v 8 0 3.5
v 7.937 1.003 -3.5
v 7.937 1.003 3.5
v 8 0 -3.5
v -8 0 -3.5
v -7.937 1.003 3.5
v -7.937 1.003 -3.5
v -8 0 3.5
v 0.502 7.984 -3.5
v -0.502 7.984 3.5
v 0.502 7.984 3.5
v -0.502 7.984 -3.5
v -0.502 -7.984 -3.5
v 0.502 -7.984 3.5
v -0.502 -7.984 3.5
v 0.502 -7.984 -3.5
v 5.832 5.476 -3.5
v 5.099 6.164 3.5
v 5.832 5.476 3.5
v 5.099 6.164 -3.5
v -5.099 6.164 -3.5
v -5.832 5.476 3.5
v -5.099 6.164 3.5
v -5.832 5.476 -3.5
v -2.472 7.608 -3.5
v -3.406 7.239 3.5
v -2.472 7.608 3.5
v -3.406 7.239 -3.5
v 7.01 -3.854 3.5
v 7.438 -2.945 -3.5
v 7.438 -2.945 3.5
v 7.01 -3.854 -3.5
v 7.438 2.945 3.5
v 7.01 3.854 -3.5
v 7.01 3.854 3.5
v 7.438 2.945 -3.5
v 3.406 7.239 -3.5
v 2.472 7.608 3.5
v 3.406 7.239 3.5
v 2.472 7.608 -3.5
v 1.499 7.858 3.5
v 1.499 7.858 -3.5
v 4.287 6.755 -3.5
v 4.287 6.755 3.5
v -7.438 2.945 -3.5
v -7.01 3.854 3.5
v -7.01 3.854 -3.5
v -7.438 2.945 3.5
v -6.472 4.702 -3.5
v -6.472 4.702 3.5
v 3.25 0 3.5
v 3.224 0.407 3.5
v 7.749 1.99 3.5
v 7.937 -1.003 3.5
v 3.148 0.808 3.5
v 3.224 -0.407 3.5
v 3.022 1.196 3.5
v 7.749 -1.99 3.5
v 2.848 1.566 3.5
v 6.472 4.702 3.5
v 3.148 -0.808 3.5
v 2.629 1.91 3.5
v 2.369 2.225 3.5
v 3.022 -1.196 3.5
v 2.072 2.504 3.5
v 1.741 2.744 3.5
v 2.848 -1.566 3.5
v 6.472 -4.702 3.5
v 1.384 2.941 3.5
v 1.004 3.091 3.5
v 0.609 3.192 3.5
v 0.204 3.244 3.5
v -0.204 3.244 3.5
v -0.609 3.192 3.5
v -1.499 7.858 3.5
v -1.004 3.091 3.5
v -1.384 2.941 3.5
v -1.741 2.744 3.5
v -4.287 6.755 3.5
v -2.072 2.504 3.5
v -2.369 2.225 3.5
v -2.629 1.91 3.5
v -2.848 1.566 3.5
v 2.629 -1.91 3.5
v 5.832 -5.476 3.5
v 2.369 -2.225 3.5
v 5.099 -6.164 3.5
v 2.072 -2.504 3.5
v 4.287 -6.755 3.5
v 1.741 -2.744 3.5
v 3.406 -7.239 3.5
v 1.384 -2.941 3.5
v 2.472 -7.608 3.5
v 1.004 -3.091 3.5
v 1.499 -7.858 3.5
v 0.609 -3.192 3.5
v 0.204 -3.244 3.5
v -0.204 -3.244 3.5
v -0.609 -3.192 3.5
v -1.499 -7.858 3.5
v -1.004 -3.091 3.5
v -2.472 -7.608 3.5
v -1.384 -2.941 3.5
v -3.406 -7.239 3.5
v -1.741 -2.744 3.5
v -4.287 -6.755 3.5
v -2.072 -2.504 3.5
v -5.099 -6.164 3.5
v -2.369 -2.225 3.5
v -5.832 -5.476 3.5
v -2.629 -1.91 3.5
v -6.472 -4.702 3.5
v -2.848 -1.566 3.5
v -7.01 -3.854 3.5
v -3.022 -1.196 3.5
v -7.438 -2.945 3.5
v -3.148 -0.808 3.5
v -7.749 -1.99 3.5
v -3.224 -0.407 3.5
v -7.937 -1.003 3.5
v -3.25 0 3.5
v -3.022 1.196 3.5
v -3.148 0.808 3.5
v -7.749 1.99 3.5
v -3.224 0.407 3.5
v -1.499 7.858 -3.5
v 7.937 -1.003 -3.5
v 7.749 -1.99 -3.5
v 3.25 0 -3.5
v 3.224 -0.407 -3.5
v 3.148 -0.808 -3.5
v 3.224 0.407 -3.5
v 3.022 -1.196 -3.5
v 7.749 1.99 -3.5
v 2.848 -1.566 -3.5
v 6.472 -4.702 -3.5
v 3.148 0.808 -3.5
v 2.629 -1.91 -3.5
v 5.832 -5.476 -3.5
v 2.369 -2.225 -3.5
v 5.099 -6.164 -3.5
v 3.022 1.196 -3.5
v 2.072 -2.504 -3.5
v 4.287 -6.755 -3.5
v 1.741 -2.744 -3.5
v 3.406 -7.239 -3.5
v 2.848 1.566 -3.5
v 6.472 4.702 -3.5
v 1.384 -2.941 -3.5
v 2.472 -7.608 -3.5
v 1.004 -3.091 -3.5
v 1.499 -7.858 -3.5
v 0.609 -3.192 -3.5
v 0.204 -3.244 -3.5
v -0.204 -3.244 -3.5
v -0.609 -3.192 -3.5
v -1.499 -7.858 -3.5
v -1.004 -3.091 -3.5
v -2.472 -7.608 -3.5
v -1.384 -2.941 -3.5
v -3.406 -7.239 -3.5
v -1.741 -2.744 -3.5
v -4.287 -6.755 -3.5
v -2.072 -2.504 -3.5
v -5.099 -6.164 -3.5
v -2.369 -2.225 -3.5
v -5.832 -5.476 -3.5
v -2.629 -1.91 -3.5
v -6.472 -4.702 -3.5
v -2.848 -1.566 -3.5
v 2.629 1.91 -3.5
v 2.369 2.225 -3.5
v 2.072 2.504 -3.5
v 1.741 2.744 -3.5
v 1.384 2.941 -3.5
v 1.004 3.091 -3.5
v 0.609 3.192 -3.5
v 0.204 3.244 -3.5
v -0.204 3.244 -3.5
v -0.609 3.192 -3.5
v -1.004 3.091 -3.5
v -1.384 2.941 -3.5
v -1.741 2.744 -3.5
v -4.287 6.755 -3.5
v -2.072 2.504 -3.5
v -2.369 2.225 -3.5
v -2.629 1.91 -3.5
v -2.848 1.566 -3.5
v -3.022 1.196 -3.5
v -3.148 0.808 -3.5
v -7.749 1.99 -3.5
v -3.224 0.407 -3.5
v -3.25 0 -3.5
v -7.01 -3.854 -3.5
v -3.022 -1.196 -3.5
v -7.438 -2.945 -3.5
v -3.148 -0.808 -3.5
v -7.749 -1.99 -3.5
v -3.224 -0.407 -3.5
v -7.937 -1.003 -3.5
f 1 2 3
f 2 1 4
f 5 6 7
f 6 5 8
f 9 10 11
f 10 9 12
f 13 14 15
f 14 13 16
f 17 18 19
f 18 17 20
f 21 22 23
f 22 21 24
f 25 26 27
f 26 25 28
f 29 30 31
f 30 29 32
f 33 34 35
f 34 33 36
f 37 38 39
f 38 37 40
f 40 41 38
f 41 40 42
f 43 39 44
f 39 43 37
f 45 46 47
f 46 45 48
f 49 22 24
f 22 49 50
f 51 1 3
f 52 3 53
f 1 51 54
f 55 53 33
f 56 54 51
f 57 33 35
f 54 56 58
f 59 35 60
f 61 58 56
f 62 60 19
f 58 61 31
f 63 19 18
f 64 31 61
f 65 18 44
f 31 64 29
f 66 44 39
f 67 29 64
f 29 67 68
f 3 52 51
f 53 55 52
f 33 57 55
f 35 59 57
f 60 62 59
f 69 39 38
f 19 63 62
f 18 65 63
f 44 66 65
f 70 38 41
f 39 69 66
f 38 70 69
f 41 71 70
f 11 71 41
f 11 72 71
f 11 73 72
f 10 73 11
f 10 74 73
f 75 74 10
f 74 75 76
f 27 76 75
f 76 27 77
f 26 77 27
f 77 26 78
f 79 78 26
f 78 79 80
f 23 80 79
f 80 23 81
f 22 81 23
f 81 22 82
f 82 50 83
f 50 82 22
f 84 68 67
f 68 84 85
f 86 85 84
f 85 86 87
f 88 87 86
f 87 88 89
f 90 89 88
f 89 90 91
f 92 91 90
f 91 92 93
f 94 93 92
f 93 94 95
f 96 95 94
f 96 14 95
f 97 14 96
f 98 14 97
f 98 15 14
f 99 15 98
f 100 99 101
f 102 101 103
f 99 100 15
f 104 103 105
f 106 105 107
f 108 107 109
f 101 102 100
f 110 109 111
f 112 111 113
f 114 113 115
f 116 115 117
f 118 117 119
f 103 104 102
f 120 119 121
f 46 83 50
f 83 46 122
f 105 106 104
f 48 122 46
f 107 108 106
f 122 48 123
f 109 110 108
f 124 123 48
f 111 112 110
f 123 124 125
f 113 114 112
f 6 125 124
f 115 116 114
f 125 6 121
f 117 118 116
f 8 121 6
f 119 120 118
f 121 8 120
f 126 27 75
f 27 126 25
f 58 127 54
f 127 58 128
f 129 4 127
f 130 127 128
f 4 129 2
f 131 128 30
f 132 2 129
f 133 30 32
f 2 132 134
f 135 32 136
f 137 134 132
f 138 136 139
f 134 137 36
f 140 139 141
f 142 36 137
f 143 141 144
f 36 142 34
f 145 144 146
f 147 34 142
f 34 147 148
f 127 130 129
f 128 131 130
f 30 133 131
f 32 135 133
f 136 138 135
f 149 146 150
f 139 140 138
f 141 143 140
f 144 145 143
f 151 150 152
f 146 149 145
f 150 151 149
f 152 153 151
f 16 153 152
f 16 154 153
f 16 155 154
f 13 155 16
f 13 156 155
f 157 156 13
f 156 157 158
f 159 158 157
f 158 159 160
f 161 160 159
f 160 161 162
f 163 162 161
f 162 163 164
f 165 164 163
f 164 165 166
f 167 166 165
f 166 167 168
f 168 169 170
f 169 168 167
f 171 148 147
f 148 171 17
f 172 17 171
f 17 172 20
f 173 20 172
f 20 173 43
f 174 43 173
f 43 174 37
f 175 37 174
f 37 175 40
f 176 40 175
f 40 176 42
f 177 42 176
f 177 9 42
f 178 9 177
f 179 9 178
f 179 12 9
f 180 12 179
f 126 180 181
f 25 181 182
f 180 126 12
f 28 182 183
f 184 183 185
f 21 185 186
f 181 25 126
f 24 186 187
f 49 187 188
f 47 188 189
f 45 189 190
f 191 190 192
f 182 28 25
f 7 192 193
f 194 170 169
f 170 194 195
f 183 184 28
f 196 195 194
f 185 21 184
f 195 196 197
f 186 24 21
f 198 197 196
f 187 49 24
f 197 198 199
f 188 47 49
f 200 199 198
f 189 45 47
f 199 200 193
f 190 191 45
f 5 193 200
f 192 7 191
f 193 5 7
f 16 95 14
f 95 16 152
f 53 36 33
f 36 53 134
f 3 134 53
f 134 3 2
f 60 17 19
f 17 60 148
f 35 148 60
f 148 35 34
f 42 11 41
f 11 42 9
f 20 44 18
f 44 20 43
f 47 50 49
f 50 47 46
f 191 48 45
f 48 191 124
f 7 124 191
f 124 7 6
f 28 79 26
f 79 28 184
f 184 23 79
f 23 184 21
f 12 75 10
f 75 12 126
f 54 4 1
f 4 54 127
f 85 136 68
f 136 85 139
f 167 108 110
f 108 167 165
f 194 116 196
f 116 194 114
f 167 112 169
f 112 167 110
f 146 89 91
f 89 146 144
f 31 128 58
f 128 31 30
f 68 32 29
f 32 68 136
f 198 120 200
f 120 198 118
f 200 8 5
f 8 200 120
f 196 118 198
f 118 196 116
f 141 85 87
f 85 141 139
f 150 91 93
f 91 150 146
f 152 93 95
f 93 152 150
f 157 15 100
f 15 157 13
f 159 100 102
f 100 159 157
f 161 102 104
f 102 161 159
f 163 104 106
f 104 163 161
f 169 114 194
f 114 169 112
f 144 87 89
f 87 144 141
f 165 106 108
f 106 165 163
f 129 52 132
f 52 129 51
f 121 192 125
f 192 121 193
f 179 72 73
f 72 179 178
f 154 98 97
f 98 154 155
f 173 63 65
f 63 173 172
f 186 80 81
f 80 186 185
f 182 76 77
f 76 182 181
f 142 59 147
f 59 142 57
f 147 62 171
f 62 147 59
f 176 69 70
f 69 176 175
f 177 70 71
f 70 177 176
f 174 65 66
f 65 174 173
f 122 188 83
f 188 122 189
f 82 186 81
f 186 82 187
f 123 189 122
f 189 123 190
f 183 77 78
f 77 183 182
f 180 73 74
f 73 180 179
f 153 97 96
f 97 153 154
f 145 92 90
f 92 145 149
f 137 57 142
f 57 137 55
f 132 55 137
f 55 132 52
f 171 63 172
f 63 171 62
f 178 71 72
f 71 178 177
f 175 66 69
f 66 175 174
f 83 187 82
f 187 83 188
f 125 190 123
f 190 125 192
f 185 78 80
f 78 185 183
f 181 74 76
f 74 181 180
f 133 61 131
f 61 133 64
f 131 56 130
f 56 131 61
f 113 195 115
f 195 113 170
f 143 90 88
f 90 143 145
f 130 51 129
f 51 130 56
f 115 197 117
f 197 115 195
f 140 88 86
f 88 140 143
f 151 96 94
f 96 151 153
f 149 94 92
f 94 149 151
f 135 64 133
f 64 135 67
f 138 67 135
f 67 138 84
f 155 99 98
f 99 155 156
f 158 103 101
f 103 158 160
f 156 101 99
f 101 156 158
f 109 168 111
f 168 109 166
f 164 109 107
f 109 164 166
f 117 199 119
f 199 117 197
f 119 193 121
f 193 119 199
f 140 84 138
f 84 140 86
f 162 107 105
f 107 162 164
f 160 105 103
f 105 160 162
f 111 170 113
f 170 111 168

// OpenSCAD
$fn = 50;


difference() {
	union() {
		translate(v = [0, 0, -3.5000000000]) {
			cylinder(h = 7, r = 8.0000000000);
		}
	}
	union() {
		translate(v = [0, 0, -100.0000000000]) {
			cylinder(h = 200, r = 3.2500000000);
		}
	}
}
